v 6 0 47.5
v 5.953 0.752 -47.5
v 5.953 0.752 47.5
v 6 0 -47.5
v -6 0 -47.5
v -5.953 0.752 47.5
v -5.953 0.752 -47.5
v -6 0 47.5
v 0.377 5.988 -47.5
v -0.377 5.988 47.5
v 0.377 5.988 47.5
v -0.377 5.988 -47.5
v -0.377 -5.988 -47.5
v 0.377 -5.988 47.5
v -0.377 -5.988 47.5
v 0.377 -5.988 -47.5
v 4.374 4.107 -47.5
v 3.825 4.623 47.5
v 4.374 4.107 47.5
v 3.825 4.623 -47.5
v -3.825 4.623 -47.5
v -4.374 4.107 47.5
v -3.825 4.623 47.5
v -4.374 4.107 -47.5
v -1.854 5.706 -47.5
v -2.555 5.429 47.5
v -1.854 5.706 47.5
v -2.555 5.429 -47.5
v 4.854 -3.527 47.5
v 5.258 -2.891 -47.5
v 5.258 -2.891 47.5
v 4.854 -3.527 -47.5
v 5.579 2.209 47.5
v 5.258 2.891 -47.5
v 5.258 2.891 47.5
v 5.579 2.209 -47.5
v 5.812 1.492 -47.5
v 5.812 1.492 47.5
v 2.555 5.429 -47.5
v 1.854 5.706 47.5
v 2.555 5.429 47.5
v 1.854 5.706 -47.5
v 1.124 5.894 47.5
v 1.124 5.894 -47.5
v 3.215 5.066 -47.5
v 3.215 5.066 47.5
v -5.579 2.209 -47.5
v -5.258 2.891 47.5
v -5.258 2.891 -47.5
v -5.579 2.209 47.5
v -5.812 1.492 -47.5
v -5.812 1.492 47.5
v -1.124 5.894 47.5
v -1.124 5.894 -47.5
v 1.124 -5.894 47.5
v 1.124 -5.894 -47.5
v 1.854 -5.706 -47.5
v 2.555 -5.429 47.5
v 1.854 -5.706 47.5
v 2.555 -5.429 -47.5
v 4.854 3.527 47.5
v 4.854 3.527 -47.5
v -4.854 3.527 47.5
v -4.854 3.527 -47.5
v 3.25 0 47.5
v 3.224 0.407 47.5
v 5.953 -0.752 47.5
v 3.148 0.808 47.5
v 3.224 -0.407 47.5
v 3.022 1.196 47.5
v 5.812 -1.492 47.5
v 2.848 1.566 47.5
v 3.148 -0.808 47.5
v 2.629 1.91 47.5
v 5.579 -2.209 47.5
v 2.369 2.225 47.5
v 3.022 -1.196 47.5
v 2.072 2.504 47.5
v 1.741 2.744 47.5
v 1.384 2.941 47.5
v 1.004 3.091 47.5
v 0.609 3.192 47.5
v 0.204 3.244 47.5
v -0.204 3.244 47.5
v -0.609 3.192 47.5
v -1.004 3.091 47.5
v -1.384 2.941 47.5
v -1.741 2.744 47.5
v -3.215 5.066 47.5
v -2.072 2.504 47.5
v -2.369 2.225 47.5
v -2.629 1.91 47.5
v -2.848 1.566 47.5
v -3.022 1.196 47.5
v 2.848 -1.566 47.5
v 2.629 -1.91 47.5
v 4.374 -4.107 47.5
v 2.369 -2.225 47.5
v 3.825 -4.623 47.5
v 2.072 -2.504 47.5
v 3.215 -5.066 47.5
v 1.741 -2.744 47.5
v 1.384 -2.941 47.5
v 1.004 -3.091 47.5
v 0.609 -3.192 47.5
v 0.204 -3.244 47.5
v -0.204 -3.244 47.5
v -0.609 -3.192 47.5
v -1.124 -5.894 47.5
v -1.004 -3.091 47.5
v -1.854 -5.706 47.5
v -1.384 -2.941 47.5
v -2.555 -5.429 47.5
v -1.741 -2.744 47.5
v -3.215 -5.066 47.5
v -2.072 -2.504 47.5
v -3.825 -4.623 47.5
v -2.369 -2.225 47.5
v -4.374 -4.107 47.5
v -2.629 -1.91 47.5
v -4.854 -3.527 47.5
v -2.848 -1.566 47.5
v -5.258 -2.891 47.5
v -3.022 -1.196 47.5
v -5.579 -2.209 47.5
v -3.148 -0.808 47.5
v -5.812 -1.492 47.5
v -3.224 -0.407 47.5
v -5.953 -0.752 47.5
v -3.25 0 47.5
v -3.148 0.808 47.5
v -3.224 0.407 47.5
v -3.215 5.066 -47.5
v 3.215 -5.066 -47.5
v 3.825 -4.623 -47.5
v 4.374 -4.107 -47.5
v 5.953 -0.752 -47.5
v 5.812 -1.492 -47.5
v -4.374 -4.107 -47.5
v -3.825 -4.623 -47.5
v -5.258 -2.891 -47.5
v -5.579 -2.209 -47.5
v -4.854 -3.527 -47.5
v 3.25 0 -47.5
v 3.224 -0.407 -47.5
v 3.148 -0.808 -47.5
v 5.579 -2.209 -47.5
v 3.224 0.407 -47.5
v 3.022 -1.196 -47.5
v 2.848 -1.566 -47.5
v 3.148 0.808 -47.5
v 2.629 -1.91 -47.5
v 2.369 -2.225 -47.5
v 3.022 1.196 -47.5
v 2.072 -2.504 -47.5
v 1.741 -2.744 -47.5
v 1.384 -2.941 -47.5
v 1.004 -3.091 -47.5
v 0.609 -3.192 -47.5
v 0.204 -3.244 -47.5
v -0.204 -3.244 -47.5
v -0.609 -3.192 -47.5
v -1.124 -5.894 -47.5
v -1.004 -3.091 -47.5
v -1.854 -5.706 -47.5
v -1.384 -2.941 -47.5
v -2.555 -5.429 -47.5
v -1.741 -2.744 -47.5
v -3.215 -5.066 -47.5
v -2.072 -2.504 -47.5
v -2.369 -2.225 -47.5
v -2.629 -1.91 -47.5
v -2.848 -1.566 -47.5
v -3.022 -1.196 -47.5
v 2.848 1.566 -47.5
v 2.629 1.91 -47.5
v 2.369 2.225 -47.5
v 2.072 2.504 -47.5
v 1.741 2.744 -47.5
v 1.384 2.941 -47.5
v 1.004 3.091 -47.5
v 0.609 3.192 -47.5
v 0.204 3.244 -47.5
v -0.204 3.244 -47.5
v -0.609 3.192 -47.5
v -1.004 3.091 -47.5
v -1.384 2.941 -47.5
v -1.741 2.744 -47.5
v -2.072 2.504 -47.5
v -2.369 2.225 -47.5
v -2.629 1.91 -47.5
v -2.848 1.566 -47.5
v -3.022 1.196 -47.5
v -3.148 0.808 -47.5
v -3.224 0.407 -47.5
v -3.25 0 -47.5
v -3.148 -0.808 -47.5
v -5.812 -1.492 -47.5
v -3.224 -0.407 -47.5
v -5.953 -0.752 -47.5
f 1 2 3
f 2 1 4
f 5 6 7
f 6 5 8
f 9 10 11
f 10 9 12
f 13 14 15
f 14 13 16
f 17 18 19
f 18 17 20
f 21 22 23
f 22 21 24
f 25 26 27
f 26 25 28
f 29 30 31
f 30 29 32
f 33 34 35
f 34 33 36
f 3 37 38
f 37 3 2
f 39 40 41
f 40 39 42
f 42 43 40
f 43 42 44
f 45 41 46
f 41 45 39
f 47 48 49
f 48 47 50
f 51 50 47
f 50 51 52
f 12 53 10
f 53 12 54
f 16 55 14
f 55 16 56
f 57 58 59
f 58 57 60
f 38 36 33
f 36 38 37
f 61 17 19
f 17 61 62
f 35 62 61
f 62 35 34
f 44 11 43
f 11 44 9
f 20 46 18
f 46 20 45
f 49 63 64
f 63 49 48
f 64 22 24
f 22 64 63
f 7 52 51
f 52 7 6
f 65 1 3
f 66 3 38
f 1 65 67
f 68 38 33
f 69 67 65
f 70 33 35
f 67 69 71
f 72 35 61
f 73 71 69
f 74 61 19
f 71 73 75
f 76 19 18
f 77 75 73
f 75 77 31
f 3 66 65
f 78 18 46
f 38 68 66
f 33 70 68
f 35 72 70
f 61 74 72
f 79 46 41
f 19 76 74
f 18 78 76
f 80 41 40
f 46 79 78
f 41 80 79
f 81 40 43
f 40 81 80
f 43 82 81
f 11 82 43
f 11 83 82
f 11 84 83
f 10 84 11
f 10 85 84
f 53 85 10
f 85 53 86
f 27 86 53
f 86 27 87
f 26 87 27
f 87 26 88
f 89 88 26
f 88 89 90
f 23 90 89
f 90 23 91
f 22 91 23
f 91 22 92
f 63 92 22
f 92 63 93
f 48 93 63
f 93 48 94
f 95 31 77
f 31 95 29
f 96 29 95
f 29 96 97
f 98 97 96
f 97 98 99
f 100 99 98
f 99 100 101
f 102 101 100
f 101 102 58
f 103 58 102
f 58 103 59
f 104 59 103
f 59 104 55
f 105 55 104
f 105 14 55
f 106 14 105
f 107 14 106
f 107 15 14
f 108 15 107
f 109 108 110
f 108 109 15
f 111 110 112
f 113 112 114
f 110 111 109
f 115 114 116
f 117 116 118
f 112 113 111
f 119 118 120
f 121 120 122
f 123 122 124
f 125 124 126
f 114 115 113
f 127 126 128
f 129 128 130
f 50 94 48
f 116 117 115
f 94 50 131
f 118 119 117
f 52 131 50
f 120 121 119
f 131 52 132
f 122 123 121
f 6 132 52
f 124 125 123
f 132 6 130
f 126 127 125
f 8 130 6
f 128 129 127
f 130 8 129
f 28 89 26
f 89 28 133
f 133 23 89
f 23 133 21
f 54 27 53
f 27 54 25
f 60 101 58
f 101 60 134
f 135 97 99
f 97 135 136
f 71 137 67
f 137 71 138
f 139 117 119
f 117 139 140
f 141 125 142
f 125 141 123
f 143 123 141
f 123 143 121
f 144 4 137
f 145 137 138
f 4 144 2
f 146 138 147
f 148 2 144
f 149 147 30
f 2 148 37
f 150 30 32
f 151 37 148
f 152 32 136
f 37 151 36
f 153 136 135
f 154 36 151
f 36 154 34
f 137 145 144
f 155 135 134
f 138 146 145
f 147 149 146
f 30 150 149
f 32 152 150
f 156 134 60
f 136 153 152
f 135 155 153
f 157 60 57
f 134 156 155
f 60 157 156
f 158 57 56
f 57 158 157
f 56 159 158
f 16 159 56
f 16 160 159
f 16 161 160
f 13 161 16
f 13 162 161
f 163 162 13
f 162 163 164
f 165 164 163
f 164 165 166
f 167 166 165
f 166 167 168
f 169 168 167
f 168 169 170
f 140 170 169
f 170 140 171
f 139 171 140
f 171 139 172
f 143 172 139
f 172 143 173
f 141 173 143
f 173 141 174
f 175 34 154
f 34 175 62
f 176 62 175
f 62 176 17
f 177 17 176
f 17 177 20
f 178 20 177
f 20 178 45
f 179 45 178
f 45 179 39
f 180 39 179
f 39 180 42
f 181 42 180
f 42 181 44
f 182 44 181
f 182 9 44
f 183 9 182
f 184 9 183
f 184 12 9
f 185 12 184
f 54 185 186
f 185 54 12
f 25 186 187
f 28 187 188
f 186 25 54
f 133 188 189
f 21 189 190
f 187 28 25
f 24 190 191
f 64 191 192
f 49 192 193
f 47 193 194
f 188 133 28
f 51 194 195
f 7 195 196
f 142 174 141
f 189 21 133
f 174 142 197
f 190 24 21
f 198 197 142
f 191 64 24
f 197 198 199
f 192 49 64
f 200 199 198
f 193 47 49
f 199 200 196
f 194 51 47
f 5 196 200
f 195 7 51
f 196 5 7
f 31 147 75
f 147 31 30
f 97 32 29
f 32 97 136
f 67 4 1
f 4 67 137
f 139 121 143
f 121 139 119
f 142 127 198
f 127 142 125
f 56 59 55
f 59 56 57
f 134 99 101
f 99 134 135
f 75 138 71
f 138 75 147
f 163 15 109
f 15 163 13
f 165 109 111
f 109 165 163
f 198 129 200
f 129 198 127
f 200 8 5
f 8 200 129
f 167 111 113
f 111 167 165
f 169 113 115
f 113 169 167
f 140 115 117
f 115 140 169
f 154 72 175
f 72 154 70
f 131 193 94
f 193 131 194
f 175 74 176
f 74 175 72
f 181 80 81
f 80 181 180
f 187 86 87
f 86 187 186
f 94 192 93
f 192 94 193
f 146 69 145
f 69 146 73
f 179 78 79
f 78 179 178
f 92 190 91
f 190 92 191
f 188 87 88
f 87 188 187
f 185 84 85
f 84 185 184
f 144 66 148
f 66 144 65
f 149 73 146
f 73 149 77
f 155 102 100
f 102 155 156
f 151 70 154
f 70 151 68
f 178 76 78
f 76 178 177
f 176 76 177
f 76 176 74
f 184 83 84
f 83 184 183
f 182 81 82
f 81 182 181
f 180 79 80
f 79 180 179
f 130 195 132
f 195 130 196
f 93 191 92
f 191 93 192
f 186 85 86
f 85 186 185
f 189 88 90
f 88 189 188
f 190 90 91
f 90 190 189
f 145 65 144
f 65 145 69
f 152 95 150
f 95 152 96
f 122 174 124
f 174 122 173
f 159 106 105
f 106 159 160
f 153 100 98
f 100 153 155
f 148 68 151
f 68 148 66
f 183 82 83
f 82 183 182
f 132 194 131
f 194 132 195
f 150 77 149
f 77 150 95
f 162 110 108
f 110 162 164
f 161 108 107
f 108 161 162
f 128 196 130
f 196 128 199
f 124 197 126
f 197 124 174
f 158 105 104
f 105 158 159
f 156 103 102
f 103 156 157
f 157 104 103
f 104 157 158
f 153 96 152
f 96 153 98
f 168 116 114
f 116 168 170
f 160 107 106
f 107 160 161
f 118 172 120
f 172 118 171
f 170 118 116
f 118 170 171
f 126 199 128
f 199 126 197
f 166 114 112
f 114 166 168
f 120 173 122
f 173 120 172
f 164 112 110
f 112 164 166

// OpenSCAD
$fn = 50;


difference() {
	union() {
		translate(v = [0, 0, -47.5000000000]) {
			cylinder(h = 95, r = 6.0000000000);
		}
	}
	union() {
		translate(v = [0, 0, -100.0000000000]) {
			cylinder(h = 200, r = 3.2500000000);
		}
	}
}
